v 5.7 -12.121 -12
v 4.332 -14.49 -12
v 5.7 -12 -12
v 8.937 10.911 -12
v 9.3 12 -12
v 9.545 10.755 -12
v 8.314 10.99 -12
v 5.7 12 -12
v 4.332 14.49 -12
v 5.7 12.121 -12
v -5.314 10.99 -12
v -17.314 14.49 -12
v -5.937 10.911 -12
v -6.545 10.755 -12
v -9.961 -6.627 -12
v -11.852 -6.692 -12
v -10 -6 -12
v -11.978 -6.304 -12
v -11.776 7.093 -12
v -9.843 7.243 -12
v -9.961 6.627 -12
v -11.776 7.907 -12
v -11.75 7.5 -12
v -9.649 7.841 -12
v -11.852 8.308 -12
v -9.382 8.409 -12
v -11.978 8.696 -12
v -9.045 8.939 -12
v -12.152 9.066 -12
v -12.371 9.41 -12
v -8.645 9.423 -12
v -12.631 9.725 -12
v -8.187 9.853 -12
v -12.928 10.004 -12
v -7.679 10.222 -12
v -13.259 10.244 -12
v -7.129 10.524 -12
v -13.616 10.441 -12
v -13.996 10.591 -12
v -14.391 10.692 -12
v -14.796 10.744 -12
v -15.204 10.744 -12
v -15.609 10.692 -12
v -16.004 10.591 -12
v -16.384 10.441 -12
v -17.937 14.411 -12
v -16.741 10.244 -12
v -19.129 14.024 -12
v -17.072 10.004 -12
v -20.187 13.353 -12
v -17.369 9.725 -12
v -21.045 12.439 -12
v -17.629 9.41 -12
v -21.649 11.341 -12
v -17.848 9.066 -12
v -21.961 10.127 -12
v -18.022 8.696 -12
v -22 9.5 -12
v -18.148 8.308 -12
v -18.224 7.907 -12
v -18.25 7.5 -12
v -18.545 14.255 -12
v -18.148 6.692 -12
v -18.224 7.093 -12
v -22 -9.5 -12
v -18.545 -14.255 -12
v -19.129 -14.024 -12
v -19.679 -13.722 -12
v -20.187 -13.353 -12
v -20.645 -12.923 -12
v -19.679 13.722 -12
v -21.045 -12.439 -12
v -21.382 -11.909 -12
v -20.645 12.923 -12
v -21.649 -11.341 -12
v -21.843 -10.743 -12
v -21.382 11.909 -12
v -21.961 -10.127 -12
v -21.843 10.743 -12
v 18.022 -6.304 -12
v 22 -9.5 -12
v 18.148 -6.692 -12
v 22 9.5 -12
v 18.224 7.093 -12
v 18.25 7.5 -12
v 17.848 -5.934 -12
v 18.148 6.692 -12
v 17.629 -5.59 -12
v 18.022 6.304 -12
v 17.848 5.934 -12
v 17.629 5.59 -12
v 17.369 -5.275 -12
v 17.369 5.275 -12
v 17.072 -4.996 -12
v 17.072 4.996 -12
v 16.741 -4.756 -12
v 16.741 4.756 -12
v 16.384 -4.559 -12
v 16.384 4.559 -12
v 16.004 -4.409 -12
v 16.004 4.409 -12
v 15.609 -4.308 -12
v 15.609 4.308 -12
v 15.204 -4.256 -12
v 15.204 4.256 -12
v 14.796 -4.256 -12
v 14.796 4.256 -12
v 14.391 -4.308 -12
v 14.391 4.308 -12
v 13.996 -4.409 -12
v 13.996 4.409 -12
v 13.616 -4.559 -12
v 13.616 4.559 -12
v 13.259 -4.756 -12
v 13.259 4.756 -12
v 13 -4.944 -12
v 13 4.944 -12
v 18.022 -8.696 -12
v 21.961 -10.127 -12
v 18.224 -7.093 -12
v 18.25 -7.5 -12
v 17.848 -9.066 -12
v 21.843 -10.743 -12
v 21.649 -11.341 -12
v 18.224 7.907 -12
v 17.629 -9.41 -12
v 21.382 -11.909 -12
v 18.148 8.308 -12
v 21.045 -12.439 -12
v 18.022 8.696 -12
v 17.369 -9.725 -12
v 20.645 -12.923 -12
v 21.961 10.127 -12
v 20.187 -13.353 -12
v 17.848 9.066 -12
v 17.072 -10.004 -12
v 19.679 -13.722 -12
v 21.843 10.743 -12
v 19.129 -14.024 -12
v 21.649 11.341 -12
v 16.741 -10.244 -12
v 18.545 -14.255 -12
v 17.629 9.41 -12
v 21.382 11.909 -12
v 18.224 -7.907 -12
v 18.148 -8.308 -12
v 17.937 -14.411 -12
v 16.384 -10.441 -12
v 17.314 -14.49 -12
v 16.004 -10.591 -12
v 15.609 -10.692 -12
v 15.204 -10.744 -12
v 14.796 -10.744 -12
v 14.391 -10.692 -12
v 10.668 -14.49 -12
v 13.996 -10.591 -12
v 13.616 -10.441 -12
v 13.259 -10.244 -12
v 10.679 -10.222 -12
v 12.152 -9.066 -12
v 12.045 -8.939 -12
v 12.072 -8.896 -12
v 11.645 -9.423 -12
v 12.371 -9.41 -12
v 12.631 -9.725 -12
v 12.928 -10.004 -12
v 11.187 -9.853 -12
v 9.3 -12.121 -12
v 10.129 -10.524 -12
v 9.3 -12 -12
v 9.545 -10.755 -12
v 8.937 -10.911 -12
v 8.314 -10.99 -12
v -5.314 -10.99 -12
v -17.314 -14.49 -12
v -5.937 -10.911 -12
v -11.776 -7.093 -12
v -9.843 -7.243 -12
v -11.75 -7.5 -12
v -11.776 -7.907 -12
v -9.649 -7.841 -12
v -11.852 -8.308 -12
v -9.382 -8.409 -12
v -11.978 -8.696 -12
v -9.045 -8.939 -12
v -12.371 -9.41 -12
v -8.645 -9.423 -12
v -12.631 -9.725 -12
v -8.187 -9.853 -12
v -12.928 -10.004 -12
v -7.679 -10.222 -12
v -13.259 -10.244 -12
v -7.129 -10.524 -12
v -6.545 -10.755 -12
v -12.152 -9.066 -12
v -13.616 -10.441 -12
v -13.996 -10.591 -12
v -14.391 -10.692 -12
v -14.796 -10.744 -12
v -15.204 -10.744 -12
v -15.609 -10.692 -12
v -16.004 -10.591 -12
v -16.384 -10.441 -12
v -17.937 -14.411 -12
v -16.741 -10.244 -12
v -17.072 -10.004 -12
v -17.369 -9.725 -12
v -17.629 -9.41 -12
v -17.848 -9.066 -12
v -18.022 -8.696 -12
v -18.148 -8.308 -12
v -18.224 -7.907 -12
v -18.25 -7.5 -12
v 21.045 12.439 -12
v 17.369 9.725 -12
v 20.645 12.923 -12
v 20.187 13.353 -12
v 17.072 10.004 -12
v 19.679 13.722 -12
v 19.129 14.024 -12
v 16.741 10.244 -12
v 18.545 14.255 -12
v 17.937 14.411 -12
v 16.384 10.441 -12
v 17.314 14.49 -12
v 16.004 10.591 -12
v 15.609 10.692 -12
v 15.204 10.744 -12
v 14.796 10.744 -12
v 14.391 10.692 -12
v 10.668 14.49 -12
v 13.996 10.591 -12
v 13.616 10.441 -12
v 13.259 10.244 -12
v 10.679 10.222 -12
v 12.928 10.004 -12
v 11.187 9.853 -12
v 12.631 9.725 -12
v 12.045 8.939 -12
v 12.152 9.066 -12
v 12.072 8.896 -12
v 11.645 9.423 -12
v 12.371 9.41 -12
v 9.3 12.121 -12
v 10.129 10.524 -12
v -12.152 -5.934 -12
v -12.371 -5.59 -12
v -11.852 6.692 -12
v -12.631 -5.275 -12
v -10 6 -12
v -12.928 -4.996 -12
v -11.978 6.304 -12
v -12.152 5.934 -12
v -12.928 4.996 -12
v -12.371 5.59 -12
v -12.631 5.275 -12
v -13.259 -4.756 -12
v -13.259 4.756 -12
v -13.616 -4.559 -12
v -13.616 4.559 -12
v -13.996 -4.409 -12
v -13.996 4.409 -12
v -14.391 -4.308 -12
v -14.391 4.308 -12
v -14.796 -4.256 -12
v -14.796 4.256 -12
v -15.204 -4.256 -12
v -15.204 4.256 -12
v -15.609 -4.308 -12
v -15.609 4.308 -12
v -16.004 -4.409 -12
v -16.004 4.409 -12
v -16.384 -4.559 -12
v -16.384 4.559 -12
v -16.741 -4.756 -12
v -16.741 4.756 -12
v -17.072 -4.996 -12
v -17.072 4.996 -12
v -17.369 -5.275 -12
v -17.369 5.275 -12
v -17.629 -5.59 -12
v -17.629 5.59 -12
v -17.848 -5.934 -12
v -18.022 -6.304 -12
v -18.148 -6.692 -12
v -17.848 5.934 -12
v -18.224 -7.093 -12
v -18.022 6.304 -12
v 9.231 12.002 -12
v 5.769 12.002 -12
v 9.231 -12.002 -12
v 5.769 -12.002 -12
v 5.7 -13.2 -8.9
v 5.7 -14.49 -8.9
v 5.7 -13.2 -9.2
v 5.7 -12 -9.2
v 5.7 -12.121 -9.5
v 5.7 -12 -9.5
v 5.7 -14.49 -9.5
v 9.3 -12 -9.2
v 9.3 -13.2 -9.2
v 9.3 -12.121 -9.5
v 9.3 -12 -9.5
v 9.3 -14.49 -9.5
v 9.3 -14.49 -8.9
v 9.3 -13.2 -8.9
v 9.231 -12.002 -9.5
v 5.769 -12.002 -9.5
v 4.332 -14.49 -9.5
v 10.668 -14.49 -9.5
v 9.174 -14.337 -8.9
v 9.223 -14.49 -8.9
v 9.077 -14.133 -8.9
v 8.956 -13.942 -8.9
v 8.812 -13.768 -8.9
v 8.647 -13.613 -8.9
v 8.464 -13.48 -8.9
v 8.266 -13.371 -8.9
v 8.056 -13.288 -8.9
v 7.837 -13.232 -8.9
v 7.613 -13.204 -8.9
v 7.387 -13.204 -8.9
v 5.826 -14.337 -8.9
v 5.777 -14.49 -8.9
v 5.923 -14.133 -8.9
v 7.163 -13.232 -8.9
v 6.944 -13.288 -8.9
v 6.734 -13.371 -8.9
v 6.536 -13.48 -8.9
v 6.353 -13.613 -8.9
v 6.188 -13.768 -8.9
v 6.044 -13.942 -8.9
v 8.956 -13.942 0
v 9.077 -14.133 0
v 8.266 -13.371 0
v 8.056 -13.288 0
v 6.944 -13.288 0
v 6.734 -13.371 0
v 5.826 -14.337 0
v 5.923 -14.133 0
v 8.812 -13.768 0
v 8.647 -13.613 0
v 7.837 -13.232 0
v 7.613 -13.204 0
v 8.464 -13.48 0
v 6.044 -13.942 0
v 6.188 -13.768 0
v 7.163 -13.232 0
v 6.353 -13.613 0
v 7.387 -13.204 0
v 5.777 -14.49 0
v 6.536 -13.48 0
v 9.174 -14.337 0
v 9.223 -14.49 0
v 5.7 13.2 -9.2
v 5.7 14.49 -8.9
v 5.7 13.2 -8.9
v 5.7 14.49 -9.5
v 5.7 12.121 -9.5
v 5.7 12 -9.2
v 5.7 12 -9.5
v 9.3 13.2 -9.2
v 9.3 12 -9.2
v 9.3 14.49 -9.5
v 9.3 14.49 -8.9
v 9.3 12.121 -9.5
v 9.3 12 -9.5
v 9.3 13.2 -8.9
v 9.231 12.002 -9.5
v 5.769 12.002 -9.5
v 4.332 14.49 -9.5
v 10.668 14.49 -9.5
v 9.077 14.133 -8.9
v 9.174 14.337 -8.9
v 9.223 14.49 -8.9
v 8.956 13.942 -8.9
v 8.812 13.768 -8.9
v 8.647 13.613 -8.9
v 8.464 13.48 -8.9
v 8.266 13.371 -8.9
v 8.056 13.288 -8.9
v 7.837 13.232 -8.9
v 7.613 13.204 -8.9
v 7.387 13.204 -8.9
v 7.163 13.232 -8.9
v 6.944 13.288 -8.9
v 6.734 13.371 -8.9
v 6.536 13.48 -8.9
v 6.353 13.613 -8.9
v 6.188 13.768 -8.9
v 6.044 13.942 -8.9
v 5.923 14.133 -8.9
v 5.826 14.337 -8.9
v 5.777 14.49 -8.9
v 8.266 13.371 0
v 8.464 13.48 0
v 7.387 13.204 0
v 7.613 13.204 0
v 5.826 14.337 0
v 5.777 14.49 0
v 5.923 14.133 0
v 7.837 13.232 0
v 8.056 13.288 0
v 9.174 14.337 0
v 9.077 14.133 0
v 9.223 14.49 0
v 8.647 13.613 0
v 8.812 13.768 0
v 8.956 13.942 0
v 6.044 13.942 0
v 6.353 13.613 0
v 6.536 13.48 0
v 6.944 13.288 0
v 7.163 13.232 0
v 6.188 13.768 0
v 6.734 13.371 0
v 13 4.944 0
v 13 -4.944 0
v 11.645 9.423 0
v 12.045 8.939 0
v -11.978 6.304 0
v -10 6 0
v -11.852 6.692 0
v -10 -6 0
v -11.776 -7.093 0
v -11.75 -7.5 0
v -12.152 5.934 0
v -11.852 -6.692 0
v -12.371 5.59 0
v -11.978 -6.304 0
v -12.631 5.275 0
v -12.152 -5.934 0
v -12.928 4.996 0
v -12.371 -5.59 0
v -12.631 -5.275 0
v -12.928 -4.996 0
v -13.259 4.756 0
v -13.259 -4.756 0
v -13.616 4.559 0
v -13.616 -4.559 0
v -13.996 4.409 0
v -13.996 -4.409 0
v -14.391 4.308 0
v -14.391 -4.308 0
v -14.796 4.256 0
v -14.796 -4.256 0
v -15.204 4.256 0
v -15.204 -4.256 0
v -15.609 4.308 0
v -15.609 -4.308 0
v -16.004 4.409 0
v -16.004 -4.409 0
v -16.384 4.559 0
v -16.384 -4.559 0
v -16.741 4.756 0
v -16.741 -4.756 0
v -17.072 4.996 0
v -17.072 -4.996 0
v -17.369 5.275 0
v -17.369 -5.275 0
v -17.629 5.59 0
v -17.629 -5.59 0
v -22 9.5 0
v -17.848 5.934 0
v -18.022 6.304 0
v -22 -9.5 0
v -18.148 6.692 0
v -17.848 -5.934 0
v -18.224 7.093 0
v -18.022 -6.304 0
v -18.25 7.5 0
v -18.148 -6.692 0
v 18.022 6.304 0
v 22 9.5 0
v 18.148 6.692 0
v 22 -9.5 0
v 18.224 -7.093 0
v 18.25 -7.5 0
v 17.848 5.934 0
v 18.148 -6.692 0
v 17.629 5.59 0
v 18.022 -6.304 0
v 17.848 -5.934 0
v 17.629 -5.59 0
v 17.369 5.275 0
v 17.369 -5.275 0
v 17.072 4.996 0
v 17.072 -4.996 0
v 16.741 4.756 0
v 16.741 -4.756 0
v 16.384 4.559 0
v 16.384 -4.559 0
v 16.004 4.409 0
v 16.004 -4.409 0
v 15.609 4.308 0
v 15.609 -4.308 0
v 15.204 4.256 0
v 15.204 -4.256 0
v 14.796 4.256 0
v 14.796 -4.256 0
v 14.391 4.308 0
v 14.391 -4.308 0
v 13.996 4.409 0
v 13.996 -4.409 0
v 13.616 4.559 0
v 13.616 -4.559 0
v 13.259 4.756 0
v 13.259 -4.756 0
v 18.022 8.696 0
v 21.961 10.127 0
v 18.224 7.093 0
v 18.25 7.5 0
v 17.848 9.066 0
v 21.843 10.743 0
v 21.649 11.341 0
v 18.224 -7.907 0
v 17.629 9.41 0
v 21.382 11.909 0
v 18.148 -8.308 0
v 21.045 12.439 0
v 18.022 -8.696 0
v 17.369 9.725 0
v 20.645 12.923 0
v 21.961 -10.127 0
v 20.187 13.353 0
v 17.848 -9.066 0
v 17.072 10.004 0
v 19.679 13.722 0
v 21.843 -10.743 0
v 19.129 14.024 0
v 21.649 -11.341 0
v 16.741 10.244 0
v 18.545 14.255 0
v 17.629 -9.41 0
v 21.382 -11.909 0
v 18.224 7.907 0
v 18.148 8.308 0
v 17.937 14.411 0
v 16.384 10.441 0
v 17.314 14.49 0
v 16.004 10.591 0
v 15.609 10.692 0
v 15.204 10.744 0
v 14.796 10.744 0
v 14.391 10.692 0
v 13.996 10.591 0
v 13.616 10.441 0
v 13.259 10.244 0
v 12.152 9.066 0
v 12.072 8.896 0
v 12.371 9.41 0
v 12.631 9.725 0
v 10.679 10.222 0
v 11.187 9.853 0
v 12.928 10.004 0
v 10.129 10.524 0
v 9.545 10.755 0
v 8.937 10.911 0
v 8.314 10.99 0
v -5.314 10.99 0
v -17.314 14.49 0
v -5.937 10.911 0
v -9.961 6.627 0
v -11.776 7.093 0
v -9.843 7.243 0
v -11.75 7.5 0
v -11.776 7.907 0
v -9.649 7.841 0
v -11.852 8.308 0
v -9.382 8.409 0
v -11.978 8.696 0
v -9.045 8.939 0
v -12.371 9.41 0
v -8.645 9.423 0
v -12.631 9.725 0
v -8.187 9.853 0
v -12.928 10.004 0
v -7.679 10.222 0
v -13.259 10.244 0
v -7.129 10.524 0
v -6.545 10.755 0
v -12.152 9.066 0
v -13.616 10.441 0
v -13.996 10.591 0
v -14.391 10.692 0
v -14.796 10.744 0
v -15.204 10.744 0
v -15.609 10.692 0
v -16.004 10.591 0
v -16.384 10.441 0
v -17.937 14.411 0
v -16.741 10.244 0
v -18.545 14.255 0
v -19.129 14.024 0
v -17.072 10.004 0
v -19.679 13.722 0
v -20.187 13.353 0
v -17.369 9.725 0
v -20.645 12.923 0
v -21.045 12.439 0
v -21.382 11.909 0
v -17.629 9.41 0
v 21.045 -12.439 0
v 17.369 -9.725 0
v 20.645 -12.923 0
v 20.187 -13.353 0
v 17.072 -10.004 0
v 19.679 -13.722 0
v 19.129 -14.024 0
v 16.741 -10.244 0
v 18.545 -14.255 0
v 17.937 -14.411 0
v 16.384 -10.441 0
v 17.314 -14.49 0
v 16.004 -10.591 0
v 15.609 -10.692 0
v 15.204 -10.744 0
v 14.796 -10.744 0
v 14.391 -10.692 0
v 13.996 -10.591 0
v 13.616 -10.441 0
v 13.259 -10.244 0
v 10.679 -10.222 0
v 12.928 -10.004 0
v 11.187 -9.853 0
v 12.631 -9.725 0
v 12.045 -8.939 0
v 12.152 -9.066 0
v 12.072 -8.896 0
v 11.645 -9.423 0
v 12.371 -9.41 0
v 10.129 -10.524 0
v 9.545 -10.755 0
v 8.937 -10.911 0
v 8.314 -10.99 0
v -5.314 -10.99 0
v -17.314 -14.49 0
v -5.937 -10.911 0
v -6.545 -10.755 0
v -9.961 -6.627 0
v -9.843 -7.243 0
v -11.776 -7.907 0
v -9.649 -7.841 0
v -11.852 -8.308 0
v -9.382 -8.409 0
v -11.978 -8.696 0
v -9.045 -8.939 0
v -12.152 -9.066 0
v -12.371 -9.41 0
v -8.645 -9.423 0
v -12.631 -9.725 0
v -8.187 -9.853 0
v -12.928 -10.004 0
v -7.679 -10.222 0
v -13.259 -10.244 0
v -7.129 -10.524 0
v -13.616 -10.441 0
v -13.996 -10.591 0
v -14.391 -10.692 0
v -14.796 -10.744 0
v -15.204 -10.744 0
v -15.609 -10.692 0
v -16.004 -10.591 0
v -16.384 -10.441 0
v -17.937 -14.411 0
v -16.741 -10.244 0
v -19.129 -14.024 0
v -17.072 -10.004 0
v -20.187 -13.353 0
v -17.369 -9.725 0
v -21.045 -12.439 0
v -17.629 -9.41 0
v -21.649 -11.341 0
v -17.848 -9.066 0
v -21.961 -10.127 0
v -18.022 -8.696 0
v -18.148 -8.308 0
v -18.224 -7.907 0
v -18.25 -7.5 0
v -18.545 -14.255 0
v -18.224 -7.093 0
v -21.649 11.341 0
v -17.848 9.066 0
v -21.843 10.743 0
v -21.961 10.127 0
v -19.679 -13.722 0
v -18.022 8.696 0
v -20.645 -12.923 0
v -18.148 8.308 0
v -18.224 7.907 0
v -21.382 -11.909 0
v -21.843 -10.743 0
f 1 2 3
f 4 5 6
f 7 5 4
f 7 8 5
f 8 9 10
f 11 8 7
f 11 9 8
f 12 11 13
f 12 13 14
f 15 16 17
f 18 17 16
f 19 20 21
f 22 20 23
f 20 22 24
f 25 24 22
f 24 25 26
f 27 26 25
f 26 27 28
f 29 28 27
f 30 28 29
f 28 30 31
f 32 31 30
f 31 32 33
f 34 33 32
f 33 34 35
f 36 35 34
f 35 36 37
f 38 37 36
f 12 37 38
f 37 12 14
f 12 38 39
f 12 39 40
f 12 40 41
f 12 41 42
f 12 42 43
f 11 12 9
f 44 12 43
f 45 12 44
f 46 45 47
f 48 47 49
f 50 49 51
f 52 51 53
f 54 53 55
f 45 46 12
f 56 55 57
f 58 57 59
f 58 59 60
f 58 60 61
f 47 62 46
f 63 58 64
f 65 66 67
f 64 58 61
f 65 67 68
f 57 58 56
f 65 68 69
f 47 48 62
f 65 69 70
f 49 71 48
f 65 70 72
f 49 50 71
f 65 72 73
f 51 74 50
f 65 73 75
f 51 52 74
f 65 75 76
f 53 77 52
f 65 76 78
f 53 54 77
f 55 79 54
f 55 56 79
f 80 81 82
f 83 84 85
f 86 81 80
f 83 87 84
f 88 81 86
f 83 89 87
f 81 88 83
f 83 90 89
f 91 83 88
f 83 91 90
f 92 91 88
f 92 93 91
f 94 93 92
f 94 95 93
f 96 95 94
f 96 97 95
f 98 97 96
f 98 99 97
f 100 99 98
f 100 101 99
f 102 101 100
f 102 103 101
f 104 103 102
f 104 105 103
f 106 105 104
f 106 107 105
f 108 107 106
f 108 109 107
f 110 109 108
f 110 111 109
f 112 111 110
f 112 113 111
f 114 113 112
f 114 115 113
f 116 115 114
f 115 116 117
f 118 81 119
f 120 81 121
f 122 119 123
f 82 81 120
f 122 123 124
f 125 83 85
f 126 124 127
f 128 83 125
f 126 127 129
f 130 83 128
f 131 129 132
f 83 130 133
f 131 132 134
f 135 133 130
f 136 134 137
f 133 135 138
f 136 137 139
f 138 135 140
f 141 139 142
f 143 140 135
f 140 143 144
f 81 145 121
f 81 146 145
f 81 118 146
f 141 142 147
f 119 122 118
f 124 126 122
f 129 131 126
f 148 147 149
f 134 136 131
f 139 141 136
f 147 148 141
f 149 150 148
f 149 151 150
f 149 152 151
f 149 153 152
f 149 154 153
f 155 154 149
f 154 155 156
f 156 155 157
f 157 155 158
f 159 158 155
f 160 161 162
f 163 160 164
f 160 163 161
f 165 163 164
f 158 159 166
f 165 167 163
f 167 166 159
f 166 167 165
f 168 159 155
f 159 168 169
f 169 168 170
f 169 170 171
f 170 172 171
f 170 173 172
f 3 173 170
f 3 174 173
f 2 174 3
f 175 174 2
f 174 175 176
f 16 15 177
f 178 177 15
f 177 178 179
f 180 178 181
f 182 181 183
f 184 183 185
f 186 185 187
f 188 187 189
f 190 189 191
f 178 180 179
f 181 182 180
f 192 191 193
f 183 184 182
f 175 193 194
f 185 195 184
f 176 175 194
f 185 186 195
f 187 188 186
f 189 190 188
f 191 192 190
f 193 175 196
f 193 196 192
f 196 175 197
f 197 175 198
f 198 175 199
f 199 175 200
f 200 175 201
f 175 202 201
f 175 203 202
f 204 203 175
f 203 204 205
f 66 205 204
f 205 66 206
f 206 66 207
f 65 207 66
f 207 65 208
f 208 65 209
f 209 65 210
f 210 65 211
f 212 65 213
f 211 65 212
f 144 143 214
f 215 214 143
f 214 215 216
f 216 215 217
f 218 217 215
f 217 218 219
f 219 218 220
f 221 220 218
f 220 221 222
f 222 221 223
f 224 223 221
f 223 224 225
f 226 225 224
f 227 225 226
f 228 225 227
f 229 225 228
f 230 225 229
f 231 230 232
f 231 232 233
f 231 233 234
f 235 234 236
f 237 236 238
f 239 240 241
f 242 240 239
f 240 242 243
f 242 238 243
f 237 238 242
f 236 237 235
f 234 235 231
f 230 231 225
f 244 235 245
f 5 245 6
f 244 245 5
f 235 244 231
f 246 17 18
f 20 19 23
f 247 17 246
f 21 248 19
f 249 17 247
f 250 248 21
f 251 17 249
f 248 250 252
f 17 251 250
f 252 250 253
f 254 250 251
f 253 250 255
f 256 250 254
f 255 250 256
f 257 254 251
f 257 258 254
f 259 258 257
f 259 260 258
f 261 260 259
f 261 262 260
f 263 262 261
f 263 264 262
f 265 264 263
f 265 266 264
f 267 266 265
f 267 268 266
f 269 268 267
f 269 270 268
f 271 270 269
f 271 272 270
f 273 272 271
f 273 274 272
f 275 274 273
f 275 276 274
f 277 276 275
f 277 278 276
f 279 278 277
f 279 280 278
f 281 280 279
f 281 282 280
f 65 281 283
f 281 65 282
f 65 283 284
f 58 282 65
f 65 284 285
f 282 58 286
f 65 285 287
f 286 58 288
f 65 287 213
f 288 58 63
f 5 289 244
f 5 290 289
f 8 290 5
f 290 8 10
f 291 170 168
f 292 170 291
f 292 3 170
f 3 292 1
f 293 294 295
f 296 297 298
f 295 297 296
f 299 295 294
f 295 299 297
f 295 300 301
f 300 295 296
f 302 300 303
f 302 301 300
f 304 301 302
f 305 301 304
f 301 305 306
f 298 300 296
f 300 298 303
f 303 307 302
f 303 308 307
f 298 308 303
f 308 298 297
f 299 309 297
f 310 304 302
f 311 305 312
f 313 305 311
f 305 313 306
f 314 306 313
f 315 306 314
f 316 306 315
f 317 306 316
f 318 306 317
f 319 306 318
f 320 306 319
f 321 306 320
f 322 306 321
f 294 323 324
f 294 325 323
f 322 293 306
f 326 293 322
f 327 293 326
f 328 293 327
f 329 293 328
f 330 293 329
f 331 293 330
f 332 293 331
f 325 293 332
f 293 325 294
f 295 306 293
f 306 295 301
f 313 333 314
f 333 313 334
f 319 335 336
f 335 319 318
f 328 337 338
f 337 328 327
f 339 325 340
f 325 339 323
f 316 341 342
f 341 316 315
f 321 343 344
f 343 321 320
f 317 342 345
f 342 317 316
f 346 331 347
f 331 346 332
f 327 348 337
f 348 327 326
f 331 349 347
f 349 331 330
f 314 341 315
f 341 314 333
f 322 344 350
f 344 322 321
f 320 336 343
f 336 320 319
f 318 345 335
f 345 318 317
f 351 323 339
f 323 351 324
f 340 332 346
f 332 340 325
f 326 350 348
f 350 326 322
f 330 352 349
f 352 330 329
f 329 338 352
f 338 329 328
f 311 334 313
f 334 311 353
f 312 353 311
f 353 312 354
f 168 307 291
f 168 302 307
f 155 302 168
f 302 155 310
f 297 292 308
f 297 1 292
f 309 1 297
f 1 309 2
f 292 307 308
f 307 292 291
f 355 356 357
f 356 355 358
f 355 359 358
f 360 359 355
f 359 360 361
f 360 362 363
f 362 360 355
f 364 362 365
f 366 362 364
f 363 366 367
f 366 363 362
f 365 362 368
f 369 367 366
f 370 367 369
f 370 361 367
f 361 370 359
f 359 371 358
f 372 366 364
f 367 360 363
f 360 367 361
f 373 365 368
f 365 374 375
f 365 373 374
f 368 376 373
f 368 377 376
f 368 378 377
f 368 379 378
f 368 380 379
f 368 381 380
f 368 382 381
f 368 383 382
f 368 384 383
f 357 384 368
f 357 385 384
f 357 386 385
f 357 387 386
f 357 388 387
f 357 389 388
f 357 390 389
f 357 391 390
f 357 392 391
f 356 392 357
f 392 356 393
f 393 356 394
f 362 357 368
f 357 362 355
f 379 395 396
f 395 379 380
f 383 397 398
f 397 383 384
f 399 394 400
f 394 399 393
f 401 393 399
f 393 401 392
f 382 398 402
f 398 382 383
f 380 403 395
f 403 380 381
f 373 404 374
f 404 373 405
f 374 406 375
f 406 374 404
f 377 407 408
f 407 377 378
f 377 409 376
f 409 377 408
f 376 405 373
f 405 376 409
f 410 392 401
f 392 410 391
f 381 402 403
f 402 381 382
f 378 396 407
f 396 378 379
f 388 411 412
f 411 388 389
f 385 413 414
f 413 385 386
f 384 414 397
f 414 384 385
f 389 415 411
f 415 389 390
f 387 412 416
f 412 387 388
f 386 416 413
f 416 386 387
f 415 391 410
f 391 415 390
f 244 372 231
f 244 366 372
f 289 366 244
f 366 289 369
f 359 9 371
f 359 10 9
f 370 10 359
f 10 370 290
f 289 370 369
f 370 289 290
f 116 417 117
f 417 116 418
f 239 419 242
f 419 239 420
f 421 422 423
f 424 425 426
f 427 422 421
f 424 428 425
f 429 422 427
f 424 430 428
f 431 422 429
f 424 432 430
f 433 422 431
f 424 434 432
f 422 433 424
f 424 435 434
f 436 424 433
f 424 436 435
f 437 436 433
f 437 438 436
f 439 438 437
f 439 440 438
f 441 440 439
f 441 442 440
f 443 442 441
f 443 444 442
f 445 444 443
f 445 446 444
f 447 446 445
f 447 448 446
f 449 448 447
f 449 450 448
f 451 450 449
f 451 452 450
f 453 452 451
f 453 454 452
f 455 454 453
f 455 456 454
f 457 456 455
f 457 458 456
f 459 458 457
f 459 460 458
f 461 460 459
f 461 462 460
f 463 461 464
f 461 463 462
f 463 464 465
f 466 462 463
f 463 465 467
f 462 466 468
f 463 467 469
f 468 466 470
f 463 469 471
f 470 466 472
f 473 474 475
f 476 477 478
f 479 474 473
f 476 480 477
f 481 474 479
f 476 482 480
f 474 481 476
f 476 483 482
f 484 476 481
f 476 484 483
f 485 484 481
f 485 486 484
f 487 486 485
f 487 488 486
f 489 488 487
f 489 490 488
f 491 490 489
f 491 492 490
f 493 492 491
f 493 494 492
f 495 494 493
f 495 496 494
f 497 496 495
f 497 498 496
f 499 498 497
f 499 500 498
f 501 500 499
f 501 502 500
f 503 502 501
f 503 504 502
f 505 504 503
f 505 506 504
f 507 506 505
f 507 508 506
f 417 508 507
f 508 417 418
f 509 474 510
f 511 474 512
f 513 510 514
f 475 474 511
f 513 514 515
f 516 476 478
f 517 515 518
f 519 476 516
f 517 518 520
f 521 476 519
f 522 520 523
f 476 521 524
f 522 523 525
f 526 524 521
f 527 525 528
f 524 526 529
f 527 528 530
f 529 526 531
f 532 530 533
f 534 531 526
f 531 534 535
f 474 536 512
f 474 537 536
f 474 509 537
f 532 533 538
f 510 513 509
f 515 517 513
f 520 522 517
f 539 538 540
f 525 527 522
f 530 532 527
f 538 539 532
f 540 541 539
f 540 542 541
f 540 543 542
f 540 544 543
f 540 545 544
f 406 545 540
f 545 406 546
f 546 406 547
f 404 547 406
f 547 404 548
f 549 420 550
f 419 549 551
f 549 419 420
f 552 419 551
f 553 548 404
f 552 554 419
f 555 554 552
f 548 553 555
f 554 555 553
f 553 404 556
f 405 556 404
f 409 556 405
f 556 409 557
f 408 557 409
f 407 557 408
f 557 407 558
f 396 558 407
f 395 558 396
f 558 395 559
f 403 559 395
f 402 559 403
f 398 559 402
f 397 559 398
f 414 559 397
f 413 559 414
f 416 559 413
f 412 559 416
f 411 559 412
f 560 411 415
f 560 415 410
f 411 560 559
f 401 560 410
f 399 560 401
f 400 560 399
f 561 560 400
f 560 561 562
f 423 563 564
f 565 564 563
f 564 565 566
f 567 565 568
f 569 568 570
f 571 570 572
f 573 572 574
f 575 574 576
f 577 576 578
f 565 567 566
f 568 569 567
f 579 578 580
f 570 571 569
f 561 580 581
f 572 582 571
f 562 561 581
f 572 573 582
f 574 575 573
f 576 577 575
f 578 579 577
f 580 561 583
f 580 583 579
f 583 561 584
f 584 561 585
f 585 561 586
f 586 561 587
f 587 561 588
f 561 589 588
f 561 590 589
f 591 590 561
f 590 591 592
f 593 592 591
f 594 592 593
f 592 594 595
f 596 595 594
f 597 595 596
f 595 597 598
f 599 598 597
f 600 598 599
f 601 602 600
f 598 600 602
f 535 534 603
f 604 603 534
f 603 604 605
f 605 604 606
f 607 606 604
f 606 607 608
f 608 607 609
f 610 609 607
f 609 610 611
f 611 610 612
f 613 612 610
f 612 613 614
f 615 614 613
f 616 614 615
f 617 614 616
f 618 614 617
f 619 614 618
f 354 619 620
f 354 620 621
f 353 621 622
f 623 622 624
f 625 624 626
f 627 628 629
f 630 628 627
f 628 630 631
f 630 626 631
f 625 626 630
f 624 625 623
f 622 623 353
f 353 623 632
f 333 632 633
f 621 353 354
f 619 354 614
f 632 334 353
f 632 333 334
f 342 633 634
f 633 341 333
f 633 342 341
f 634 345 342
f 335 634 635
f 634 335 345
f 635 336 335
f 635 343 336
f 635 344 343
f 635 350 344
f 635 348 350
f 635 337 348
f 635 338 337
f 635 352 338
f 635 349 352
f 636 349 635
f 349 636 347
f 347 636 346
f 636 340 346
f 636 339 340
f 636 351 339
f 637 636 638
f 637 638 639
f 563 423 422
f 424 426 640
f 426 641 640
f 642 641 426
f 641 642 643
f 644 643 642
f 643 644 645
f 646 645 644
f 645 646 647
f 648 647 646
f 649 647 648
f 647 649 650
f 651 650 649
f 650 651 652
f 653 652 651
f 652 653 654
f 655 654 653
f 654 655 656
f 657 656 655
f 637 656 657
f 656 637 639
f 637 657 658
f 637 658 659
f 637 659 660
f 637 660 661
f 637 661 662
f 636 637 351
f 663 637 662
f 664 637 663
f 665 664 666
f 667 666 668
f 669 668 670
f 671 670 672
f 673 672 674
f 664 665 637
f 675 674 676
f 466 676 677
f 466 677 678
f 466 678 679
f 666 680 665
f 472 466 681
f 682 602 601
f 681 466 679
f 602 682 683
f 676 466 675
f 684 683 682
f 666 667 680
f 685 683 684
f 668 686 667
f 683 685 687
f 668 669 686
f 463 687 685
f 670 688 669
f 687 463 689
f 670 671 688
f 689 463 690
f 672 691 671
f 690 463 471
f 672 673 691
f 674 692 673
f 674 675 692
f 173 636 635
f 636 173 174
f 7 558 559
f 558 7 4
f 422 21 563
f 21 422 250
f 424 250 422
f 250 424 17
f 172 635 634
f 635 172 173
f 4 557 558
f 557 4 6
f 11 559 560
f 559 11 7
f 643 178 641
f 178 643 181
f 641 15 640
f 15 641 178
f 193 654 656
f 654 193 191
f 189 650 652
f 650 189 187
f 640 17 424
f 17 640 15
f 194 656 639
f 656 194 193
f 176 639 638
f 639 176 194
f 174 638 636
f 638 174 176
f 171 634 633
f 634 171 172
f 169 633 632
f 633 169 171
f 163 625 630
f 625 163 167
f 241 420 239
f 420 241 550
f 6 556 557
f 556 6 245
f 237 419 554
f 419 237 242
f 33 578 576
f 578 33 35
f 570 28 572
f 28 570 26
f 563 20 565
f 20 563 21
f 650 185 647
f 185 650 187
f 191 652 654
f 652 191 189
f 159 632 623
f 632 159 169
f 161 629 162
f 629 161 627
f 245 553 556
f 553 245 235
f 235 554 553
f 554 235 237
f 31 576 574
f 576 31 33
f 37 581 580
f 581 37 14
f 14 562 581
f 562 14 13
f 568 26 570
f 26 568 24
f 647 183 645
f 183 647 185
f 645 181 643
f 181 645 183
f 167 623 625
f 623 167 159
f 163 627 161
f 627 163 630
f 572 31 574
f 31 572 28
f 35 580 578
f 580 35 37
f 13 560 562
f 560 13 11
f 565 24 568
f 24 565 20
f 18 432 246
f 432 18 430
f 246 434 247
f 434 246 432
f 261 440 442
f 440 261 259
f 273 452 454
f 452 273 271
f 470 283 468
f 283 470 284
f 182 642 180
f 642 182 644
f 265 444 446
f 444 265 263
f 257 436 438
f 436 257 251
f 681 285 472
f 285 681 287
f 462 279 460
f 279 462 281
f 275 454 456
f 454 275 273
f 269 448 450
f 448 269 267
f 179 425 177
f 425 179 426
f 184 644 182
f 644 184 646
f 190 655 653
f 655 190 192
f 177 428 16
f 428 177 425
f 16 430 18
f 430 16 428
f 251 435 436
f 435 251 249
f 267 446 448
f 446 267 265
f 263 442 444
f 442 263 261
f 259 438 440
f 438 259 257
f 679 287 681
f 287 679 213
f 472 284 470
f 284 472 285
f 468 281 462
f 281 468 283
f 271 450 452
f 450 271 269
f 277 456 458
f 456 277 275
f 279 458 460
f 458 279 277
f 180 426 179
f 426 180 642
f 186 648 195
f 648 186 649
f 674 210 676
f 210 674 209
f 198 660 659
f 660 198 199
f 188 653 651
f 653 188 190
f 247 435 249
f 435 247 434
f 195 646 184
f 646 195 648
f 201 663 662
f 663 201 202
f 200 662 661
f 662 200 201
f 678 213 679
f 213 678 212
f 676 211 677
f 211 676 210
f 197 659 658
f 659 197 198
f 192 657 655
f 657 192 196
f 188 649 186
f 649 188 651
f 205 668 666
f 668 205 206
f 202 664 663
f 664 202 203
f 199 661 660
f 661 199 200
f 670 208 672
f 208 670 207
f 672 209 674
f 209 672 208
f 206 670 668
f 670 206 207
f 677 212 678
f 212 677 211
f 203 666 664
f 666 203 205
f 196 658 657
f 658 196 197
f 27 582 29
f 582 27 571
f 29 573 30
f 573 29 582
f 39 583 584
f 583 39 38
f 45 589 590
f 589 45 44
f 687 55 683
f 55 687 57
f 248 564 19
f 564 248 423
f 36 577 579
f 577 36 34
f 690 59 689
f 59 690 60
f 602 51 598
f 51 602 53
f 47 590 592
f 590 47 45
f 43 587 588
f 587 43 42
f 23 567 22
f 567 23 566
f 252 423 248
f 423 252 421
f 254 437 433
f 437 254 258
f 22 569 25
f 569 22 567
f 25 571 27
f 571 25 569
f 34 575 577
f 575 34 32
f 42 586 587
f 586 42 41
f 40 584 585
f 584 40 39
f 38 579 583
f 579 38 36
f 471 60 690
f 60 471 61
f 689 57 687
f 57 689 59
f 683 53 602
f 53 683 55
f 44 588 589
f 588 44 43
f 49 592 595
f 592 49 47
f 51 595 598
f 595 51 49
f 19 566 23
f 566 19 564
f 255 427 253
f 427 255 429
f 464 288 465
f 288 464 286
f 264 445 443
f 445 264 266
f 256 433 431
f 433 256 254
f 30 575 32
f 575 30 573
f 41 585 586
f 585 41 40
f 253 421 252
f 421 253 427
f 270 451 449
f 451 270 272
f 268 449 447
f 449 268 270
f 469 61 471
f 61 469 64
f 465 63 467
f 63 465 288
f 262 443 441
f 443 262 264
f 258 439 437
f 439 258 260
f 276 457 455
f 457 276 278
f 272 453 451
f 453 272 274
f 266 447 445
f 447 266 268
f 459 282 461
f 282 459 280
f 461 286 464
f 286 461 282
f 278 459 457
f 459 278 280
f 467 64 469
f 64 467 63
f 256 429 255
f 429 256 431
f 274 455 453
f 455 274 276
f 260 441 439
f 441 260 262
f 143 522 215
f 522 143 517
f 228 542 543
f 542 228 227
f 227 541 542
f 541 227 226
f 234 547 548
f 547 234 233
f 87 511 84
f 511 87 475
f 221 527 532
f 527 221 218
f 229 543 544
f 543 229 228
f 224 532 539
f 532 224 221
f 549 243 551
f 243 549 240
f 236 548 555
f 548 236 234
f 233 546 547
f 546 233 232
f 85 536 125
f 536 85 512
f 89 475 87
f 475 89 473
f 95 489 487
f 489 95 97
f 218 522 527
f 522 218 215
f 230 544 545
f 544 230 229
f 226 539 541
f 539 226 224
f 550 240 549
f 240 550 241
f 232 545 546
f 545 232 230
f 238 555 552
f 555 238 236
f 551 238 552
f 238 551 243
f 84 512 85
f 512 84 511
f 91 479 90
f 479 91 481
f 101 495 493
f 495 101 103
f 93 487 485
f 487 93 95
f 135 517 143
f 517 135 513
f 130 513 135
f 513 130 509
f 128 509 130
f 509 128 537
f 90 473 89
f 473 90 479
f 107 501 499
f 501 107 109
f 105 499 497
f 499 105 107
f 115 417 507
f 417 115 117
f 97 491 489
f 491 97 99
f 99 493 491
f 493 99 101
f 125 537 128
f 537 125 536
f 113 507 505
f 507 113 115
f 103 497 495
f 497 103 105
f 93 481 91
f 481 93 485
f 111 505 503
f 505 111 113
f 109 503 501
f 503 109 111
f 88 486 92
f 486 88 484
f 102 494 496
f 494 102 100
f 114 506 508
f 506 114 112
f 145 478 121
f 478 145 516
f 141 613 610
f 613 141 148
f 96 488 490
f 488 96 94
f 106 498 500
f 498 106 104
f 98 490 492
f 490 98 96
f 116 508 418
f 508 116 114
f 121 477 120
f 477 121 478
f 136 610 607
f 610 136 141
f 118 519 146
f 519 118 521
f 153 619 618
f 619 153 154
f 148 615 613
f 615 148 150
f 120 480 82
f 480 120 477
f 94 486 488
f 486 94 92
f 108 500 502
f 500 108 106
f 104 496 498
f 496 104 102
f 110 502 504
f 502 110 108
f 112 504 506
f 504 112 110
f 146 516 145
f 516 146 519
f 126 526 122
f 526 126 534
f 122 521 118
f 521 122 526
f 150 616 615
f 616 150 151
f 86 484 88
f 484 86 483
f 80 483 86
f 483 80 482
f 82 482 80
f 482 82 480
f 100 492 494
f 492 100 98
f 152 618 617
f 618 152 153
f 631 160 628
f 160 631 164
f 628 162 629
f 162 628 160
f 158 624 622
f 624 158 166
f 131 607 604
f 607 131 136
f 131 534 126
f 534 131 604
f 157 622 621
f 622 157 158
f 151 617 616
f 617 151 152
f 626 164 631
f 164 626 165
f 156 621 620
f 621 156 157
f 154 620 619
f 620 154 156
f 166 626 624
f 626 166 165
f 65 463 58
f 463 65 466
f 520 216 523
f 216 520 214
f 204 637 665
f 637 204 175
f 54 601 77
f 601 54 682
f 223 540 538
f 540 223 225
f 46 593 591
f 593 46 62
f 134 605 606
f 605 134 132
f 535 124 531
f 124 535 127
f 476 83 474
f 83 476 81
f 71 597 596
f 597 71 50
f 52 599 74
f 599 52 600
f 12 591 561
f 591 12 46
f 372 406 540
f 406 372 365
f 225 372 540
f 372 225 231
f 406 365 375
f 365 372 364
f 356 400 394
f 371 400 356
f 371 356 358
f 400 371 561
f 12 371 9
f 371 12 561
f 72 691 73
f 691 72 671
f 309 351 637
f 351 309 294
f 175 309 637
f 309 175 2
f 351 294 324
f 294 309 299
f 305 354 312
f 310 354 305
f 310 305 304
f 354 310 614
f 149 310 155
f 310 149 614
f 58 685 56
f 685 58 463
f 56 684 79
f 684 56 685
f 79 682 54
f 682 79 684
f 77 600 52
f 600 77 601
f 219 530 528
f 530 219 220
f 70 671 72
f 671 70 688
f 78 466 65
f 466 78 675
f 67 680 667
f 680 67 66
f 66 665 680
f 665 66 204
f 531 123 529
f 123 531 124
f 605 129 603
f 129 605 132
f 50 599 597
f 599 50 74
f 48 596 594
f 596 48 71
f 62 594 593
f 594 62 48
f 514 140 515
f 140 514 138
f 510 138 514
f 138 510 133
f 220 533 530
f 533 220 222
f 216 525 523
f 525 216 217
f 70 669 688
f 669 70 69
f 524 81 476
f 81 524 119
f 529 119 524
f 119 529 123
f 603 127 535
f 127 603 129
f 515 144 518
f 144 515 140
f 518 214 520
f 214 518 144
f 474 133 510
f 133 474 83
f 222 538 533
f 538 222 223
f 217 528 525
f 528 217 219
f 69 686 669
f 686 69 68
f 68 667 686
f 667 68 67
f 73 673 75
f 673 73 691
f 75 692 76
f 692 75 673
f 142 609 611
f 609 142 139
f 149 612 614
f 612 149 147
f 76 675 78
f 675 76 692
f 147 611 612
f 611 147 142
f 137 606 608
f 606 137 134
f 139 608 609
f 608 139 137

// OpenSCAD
$fn = 50;


difference() {
	union() {
		*color(alpha = 1.0000000000, c = "gray") {
			translate(v = [0, 14, -12]) {
				linear_extrude(height = 2) {
					text(font = "Arial:style=Bold", halign = "center", size = 4.5000000000, text = "COMMENT description oobb_plate_shape_positive_type_12_depth_0_0_-12_pos_spacer_extra_12_thickness_3_width_2_height_0_0_-12_pos_plate", valign = "center");
				}
			}
		}
		translate(v = [0, 0, -12]) {
			hull() {
				translate(v = [-17.0000000000, 9.5000000000, 0]) {
					cylinder(h = 12, r = 5);
				}
				translate(v = [17.0000000000, 9.5000000000, 0]) {
					cylinder(h = 12, r = 5);
				}
				translate(v = [-17.0000000000, -9.5000000000, 0]) {
					cylinder(h = 12, r = 5);
				}
				translate(v = [17.0000000000, -9.5000000000, 0]) {
					cylinder(h = 12, r = 5);
				}
			}
		}
		*color(alpha = 1.0000000000, c = "gray") {
			translate(v = [0, 14, -12]) {
				linear_extrude(height = 2) {
					text(font = "Arial:style=Bold", halign = "center", size = 4.5000000000, text = "COMMENT description oobb_holes_shape_p_type_0_0_-12_pos_spacer_extra_12_thickness_3_width_2_height_0_0_-12_pos_plate_'left'_'right'_'top'_hole_sides_'left'_'right'_'top'_holes_true_both_holes", valign = "center");
				}
			}
		}
		*color(alpha = 1.0000000000, c = "gray") {
			translate(v = [0, 14, -3]) {
				rotate(a = [0, 0, 180]) {
					linear_extrude(height = 2) {
						text(font = "Arial:style=Bold", halign = "center", size = 4.5000000000, text = "COMMENT description oobb_wire_spacer_shape_0_0_-3_pos_spacer_extra_12_thickness_3_width_2_height_0_0_-12_pos_plate_0_0_180_rot", valign = "center");
					}
				}
			}
		}
	}
	union() {
		translate(v = [7.5000000000, -15, -12]) {
			rotate(a = [0, 0, 0]) {
				difference() {
					union() {
						#translate(v = [-1.8000000000, -3.0000000000, -0.3000000000]) {
							cube(size = [3.6000000000, 6.0000000000, 0.3000000000]);
						}
						#translate(v = [-1.8000000000, -1.8000000000, -0.6000000000]) {
							cube(size = [3.6000000000, 3.6000000000, 0.3000000000]);
						}
						#translate(v = [-1.8000000000, -3.0000000000, 2.5000000000]) {
							cube(size = [3.6000000000, 6.0000000000, 0.3000000000]);
						}
						#translate(v = [-1.8000000000, -1.8000000000, 2.8000000000]) {
							cube(size = [3.6000000000, 3.6000000000, 0.3000000000]);
						}
						#translate(v = [0, 0, -50.0000000000]) {
							cylinder(h = 100, r = 1.8000000000);
						}
						#linear_extrude(height = 2.5000000000) {
							polygon(points = [[3.4620000000, 0.0000000000], [1.7310000000, 2.9981799479], [-1.7310000000, 2.9981799479], [-3.4620000000, 0.0000000000], [-1.7310000000, -2.9981799479], [1.7310000000, -2.9981799479]]);
						}
						#translate(v = [-1.8000000000, -3.0000000000, -0.3000000000]) {
							cube(size = [3.6000000000, 6.0000000000, 0.3000000000]);
						}
						#translate(v = [-1.8000000000, -1.8000000000, -0.6000000000]) {
							cube(size = [3.6000000000, 3.6000000000, 0.3000000000]);
						}
						#translate(v = [-1.8000000000, -3.0000000000, 2.5000000000]) {
							cube(size = [3.6000000000, 6.0000000000, 0.3000000000]);
						}
						#translate(v = [-1.8000000000, -1.8000000000, 2.8000000000]) {
							cube(size = [3.6000000000, 3.6000000000, 0.3000000000]);
						}
						#translate(v = [0, 0, -50.0000000000]) {
							cylinder(h = 100, r = 1.8000000000);
						}
						#translate(v = [-1.8000000000, -3.0000000000, -0.3000000000]) {
							cube(size = [3.6000000000, 6.0000000000, 0.3000000000]);
						}
						#translate(v = [-1.8000000000, -1.8000000000, -0.6000000000]) {
							cube(size = [3.6000000000, 3.6000000000, 0.3000000000]);
						}
						#translate(v = [-1.8000000000, -3.0000000000, 2.5000000000]) {
							cube(size = [3.6000000000, 6.0000000000, 0.3000000000]);
						}
						#translate(v = [-1.8000000000, -1.8000000000, 2.8000000000]) {
							cube(size = [3.6000000000, 3.6000000000, 0.3000000000]);
						}
						#translate(v = [0, 0, -50.0000000000]) {
							cylinder(h = 100, r = 1.8000000000);
						}
					}
					union();
				}
			}
		}
		translate(v = [7.5000000000, 15, -12]) {
			rotate(a = [0, 0, 0]) {
				difference() {
					union() {
						#translate(v = [-1.8000000000, -3.0000000000, -0.3000000000]) {
							cube(size = [3.6000000000, 6.0000000000, 0.3000000000]);
						}
						#translate(v = [-1.8000000000, -1.8000000000, -0.6000000000]) {
							cube(size = [3.6000000000, 3.6000000000, 0.3000000000]);
						}
						#translate(v = [-1.8000000000, -3.0000000000, 2.5000000000]) {
							cube(size = [3.6000000000, 6.0000000000, 0.3000000000]);
						}
						#translate(v = [-1.8000000000, -1.8000000000, 2.8000000000]) {
							cube(size = [3.6000000000, 3.6000000000, 0.3000000000]);
						}
						#translate(v = [0, 0, -50.0000000000]) {
							cylinder(h = 100, r = 1.8000000000);
						}
						#linear_extrude(height = 2.5000000000) {
							polygon(points = [[3.4620000000, 0.0000000000], [1.7310000000, 2.9981799479], [-1.7310000000, 2.9981799479], [-3.4620000000, 0.0000000000], [-1.7310000000, -2.9981799479], [1.7310000000, -2.9981799479]]);
						}
						#translate(v = [-1.8000000000, -3.0000000000, -0.3000000000]) {
							cube(size = [3.6000000000, 6.0000000000, 0.3000000000]);
						}
						#translate(v = [-1.8000000000, -1.8000000000, -0.6000000000]) {
							cube(size = [3.6000000000, 3.6000000000, 0.3000000000]);
						}
						#translate(v = [-1.8000000000, -3.0000000000, 2.5000000000]) {
							cube(size = [3.6000000000, 6.0000000000, 0.3000000000]);
						}
						#translate(v = [-1.8000000000, -1.8000000000, 2.8000000000]) {
							cube(size = [3.6000000000, 3.6000000000, 0.3000000000]);
						}
						#translate(v = [0, 0, -50.0000000000]) {
							cylinder(h = 100, r = 1.8000000000);
						}
						#translate(v = [-1.8000000000, -3.0000000000, -0.3000000000]) {
							cube(size = [3.6000000000, 6.0000000000, 0.3000000000]);
						}
						#translate(v = [-1.8000000000, -1.8000000000, -0.6000000000]) {
							cube(size = [3.6000000000, 3.6000000000, 0.3000000000]);
						}
						#translate(v = [-1.8000000000, -3.0000000000, 2.5000000000]) {
							cube(size = [3.6000000000, 6.0000000000, 0.3000000000]);
						}
						#translate(v = [-1.8000000000, -1.8000000000, 2.8000000000]) {
							cube(size = [3.6000000000, 3.6000000000, 0.3000000000]);
						}
						#translate(v = [0, 0, -50.0000000000]) {
							cylinder(h = 100, r = 1.8000000000);
						}
					}
					union();
				}
			}
		}
		translate(v = [0, 0, -3]) {
			rotate(a = [0, 0, 180]) {
				difference() {
					union() {
						translate(v = [-1.5000000000, 0, -9]) {
							hull() {
								translate(v = [-6.5000000000, 6.0000000000, 0]) {
									cylinder(h = 12, r = 5);
								}
								translate(v = [6.5000000000, 6.0000000000, 0]) {
									cylinder(h = 12, r = 5);
								}
								translate(v = [-6.5000000000, -6.0000000000, 0]) {
									cylinder(h = 12, r = 5);
								}
								translate(v = [6.5000000000, -6.0000000000, 0]) {
									cylinder(h = 12, r = 5);
								}
							}
						}
					}
					union();
				}
			}
		}
		translate(v = [-15.0000000000, -7.5000000000, -50.0000000000]) {
			cylinder(h = 100, r = 3.2500000000);
		}
		translate(v = [-15.0000000000, 7.5000000000, -50.0000000000]) {
			cylinder(h = 100, r = 3.2500000000);
		}
		translate(v = [-15.0000000000, 7.5000000000, -50.0000000000]) {
			cylinder(h = 100, r = 3.2500000000);
		}
		translate(v = [0.0000000000, 7.5000000000, -50.0000000000]) {
			cylinder(h = 100, r = 3.2500000000);
		}
		translate(v = [15.0000000000, 7.5000000000, -50.0000000000]) {
			cylinder(h = 100, r = 3.2500000000);
		}
		translate(v = [-15.0000000000, -7.5000000000, -50.0000000000]) {
			cylinder(h = 100, r = 3.2500000000);
		}
		translate(v = [0.0000000000, -7.5000000000, -50.0000000000]) {
			cylinder(h = 100, r = 3.2500000000);
		}
		translate(v = [15.0000000000, -7.5000000000, -50.0000000000]) {
			cylinder(h = 100, r = 3.2500000000);
		}
		*color(alpha = 1.0000000000, c = "gray") {
			translate(v = [7.5000000000, -1, -12]) {
				linear_extrude(height = 2) {
					text(font = "Arial:style=Bold", halign = "center", size = 4.5000000000, text = "COMMENT description oobb_nut_shape_negative_type_m3_radius_name_7.5_-15_-12_pos_12_thickness_3_width_2_height_0_0_-12_pos_plate_bottom_zz_true_overhang_0_0_0_rot_false_nut_true_hole", valign = "center");
				}
			}
		}
		*color(alpha = 1.0000000000, c = "gray") {
			translate(v = [7.5000000000, 29, -12]) {
				linear_extrude(height = 2) {
					text(font = "Arial:style=Bold", halign = "center", size = 4.5000000000, text = "COMMENT description oobb_nut_shape_negative_type_m3_radius_name_7.5_15_-12_pos_12_thickness_3_width_2_height_0_0_-12_pos_plate_bottom_zz_true_overhang_0_0_0_rot_false_nut_true_hole", valign = "center");
				}
			}
		}
	}
}
